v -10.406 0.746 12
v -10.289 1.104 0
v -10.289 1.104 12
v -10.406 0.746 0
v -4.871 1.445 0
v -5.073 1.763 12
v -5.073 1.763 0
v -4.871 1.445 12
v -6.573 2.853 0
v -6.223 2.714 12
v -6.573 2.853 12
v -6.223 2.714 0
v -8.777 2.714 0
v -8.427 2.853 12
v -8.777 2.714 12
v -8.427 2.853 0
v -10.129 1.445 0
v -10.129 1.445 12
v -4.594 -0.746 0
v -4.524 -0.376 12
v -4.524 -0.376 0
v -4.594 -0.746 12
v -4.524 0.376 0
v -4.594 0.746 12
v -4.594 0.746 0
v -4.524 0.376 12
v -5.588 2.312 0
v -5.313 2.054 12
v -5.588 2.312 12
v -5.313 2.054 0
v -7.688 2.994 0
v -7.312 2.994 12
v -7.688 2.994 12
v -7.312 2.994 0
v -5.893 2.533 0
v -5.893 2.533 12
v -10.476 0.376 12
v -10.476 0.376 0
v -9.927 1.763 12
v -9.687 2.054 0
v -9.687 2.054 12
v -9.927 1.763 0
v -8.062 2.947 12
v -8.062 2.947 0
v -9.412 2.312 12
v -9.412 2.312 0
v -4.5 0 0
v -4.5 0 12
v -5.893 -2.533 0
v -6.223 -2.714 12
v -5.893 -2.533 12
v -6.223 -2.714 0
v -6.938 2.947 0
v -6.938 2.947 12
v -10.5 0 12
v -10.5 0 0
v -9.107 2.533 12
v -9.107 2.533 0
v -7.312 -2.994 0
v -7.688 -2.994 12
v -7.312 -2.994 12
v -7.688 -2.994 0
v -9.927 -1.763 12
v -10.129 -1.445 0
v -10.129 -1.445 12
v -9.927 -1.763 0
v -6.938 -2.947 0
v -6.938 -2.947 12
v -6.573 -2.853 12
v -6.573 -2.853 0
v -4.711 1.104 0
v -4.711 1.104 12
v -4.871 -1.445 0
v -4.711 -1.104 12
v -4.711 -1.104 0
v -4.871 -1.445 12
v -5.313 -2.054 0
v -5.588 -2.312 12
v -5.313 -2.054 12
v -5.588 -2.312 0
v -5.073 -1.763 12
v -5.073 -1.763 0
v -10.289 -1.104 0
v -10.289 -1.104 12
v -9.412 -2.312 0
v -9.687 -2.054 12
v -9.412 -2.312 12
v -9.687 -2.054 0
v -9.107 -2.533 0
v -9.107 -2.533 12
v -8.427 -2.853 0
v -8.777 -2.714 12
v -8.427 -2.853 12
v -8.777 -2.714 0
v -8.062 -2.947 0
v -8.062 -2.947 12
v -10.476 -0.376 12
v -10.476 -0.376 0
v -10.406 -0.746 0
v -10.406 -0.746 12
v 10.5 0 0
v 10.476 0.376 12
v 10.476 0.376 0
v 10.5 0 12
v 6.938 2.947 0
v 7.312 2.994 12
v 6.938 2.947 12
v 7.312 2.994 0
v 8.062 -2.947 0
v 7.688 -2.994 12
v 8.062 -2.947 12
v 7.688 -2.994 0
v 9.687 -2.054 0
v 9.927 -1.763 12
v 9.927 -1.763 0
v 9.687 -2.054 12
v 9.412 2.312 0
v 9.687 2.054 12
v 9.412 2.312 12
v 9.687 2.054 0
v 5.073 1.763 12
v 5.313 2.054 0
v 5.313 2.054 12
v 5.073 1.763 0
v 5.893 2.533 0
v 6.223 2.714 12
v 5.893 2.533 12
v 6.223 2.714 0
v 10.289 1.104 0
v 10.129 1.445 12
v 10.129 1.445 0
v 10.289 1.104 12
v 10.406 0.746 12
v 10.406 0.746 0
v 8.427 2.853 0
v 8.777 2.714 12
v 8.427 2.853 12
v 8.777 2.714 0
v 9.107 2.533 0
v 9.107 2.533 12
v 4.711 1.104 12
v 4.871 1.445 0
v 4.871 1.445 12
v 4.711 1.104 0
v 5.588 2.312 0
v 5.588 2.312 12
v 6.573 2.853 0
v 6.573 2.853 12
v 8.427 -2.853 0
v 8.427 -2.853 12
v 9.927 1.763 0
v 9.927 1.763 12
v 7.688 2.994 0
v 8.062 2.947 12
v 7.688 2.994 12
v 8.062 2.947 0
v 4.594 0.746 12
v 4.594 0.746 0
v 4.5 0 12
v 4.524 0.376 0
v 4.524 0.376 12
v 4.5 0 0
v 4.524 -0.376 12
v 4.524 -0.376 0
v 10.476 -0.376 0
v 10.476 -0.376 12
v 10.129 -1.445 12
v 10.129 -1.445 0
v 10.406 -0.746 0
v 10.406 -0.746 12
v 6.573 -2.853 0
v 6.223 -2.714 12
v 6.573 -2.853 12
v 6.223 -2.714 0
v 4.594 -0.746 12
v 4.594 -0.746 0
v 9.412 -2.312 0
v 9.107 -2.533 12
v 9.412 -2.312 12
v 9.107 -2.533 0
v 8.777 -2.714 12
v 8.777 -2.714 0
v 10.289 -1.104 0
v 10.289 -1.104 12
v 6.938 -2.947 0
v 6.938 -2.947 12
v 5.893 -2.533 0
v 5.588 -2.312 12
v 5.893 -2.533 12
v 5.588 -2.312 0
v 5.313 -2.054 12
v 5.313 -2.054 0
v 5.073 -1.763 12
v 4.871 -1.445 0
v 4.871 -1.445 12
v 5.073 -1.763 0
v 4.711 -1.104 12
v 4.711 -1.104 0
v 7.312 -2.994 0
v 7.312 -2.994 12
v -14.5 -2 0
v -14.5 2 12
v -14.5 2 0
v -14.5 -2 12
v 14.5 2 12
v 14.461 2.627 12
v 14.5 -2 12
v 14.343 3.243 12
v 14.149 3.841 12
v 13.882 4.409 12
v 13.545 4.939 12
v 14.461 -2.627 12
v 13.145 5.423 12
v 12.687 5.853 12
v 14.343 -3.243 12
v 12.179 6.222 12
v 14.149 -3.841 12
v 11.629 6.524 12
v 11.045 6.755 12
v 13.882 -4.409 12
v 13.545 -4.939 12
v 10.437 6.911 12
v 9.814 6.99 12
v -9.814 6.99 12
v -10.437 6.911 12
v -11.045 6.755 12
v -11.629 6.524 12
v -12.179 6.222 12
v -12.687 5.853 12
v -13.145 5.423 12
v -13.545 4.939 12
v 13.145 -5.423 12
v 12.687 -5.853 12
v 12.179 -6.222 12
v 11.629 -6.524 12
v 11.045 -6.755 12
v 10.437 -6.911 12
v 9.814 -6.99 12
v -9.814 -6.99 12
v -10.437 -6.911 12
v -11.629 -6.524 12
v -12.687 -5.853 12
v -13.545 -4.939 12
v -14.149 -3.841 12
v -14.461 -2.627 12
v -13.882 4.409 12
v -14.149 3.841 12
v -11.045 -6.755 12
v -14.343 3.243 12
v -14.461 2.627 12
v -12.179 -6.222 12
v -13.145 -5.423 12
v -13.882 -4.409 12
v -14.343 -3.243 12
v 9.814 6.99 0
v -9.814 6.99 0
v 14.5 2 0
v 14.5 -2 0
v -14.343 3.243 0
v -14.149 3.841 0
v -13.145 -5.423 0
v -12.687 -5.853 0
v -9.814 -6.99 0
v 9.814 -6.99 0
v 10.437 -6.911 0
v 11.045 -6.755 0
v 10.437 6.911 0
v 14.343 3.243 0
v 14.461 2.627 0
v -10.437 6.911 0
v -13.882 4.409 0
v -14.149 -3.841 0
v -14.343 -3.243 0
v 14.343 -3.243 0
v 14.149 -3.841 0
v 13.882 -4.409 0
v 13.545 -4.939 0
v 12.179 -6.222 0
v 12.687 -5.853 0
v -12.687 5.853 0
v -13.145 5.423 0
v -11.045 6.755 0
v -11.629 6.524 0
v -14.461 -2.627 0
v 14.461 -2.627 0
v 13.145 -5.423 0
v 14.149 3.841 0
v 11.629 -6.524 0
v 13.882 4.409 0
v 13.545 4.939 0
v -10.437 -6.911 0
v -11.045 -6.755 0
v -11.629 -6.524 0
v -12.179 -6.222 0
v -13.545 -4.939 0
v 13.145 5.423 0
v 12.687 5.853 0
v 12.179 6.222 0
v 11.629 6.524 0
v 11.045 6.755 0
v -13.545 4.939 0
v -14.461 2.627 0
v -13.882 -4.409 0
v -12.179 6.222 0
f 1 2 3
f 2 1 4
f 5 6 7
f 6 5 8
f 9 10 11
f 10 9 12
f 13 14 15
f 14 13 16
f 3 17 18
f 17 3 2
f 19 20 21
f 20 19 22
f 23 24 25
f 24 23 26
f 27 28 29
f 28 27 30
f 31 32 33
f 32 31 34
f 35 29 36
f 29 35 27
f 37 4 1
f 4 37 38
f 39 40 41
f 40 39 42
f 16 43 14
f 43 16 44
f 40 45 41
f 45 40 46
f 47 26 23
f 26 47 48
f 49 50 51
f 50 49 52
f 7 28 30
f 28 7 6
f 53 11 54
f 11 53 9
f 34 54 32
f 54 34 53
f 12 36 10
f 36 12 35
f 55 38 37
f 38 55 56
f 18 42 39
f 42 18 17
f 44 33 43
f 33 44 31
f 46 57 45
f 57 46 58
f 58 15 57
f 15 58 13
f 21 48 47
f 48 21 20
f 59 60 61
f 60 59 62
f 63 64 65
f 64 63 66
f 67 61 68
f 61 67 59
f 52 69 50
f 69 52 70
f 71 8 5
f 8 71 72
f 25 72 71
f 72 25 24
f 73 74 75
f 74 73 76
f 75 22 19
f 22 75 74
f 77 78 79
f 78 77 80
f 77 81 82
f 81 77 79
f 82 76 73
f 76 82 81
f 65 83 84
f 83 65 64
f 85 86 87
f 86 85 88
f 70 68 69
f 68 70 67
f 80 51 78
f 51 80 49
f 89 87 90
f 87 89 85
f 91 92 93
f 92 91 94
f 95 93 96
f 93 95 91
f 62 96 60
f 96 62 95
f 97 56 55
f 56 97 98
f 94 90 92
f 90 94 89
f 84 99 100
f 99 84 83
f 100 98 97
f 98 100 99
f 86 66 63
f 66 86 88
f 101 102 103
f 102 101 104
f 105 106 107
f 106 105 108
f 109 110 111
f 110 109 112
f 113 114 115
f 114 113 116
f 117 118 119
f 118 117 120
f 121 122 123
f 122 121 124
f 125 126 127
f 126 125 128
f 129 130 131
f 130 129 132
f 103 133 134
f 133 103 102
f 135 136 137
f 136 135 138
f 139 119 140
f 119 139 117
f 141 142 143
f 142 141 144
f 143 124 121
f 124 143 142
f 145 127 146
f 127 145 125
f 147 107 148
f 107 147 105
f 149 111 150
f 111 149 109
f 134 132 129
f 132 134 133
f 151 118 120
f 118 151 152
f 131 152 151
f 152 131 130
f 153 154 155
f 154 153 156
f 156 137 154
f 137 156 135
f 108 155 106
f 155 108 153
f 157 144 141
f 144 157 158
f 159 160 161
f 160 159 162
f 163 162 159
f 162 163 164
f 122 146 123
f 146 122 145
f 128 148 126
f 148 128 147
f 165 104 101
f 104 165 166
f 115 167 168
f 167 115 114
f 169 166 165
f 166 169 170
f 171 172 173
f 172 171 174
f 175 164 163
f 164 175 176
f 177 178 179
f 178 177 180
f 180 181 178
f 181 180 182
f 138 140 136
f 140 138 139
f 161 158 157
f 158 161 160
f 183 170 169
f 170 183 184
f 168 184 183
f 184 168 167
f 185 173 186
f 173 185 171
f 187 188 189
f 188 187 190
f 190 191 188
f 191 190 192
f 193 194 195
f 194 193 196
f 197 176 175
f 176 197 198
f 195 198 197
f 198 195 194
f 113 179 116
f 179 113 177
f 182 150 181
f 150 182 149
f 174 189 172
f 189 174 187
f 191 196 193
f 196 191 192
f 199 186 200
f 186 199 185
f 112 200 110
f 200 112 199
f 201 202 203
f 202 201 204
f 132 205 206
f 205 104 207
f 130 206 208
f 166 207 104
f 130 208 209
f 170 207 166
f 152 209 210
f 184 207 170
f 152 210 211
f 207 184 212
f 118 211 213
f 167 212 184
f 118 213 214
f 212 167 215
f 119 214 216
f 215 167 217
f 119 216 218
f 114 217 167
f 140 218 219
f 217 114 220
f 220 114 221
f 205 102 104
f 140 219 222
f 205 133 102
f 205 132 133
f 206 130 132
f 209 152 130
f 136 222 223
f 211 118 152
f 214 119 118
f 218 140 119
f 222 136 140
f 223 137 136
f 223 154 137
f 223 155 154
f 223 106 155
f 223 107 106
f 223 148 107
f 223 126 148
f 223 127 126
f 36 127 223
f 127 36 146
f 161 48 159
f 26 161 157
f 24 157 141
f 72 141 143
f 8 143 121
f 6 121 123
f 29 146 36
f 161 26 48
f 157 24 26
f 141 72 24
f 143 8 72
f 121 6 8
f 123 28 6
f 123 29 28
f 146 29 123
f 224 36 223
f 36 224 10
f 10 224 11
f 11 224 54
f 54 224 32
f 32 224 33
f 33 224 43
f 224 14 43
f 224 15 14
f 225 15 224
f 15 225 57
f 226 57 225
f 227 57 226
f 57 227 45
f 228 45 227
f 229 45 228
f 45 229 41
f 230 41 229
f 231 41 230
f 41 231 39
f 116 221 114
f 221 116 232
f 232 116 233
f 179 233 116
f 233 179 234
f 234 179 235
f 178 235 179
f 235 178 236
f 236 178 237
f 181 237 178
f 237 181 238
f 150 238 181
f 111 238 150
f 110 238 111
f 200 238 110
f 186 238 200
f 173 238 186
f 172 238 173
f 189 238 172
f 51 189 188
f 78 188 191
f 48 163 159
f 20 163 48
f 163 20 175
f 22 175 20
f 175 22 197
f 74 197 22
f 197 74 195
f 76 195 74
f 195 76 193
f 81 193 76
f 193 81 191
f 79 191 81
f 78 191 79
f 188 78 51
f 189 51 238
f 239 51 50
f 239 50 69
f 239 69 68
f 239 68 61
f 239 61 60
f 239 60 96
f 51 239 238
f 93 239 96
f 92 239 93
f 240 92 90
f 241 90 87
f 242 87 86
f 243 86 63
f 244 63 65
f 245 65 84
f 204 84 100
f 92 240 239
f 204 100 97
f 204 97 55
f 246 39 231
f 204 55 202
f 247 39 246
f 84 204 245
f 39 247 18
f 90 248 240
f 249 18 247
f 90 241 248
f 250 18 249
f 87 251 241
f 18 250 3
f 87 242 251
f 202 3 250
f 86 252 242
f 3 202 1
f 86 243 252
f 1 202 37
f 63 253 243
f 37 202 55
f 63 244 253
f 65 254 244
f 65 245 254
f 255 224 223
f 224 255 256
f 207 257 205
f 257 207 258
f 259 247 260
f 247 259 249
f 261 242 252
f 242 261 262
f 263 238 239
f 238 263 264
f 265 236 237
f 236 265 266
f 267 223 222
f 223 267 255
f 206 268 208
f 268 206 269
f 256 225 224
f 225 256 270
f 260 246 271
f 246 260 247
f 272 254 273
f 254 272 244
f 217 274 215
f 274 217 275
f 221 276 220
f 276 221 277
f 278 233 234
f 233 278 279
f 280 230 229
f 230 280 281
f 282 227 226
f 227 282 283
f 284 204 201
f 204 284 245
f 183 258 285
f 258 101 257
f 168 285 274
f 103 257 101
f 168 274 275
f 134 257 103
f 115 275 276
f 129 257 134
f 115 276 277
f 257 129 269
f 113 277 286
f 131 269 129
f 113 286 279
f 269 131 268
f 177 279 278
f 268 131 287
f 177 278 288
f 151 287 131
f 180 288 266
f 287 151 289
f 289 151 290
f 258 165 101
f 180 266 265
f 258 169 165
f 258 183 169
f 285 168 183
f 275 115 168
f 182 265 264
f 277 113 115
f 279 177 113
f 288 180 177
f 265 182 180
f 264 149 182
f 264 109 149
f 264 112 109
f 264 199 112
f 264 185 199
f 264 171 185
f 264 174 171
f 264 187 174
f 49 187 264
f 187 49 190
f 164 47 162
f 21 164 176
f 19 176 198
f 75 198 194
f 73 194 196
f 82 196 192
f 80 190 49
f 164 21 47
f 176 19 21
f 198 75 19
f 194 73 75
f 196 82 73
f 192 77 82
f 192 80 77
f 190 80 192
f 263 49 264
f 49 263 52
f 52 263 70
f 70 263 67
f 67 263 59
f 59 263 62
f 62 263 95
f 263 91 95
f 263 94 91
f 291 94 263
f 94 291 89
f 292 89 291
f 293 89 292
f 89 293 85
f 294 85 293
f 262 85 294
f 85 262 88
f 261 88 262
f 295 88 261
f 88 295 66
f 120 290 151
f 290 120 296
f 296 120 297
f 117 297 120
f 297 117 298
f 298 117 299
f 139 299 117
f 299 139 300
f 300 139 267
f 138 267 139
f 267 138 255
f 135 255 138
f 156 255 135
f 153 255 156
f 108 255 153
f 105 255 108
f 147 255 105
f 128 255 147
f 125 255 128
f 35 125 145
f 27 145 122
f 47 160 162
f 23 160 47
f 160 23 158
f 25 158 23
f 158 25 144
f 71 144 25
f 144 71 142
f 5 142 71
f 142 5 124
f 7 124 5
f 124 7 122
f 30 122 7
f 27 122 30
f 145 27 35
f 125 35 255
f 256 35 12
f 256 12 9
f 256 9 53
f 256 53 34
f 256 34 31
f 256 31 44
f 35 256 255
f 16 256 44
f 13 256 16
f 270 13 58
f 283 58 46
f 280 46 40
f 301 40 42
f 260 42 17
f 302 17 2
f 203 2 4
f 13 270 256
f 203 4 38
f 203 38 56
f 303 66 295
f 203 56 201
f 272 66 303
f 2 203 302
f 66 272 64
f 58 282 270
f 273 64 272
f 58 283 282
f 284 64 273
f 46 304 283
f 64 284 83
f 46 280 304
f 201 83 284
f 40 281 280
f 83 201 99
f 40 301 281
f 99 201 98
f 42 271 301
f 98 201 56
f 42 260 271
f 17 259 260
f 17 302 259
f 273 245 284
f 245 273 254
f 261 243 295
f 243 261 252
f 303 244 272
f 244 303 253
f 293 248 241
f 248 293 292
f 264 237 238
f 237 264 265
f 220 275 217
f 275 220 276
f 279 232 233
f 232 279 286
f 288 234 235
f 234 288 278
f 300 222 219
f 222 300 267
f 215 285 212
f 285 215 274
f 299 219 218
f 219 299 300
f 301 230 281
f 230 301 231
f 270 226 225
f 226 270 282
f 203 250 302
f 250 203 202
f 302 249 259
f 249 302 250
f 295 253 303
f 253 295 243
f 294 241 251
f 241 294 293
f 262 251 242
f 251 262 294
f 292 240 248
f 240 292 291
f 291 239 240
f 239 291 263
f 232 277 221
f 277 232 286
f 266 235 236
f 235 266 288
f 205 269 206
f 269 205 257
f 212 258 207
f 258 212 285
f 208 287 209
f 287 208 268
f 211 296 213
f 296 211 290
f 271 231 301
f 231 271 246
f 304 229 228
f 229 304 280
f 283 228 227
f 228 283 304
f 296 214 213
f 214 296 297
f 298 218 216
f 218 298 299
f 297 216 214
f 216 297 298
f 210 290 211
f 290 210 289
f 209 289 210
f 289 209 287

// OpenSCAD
$fn = 50;


difference() {
	union() {
		hull() {
			translate(v = [-9.5000000000, 2.0000000000, 0]) {
				cylinder(h = 12, r = 5);
			}
			translate(v = [9.5000000000, 2.0000000000, 0]) {
				cylinder(h = 12, r = 5);
			}
			translate(v = [-9.5000000000, -2.0000000000, 0]) {
				cylinder(h = 12, r = 5);
			}
			translate(v = [9.5000000000, -2.0000000000, 0]) {
				cylinder(h = 12, r = 5);
			}
		}
	}
	union() {
		translate(v = [-7.5000000000, 0.0000000000, 0]) {
			translate(v = [0, 0, -100]) {
				cylinder(h = 200, r = 3.0000000000);
			}
		}
		translate(v = [7.5000000000, 0.0000000000, 0]) {
			translate(v = [0, 0, -100]) {
				cylinder(h = 200, r = 3.0000000000);
			}
		}
	}
}
